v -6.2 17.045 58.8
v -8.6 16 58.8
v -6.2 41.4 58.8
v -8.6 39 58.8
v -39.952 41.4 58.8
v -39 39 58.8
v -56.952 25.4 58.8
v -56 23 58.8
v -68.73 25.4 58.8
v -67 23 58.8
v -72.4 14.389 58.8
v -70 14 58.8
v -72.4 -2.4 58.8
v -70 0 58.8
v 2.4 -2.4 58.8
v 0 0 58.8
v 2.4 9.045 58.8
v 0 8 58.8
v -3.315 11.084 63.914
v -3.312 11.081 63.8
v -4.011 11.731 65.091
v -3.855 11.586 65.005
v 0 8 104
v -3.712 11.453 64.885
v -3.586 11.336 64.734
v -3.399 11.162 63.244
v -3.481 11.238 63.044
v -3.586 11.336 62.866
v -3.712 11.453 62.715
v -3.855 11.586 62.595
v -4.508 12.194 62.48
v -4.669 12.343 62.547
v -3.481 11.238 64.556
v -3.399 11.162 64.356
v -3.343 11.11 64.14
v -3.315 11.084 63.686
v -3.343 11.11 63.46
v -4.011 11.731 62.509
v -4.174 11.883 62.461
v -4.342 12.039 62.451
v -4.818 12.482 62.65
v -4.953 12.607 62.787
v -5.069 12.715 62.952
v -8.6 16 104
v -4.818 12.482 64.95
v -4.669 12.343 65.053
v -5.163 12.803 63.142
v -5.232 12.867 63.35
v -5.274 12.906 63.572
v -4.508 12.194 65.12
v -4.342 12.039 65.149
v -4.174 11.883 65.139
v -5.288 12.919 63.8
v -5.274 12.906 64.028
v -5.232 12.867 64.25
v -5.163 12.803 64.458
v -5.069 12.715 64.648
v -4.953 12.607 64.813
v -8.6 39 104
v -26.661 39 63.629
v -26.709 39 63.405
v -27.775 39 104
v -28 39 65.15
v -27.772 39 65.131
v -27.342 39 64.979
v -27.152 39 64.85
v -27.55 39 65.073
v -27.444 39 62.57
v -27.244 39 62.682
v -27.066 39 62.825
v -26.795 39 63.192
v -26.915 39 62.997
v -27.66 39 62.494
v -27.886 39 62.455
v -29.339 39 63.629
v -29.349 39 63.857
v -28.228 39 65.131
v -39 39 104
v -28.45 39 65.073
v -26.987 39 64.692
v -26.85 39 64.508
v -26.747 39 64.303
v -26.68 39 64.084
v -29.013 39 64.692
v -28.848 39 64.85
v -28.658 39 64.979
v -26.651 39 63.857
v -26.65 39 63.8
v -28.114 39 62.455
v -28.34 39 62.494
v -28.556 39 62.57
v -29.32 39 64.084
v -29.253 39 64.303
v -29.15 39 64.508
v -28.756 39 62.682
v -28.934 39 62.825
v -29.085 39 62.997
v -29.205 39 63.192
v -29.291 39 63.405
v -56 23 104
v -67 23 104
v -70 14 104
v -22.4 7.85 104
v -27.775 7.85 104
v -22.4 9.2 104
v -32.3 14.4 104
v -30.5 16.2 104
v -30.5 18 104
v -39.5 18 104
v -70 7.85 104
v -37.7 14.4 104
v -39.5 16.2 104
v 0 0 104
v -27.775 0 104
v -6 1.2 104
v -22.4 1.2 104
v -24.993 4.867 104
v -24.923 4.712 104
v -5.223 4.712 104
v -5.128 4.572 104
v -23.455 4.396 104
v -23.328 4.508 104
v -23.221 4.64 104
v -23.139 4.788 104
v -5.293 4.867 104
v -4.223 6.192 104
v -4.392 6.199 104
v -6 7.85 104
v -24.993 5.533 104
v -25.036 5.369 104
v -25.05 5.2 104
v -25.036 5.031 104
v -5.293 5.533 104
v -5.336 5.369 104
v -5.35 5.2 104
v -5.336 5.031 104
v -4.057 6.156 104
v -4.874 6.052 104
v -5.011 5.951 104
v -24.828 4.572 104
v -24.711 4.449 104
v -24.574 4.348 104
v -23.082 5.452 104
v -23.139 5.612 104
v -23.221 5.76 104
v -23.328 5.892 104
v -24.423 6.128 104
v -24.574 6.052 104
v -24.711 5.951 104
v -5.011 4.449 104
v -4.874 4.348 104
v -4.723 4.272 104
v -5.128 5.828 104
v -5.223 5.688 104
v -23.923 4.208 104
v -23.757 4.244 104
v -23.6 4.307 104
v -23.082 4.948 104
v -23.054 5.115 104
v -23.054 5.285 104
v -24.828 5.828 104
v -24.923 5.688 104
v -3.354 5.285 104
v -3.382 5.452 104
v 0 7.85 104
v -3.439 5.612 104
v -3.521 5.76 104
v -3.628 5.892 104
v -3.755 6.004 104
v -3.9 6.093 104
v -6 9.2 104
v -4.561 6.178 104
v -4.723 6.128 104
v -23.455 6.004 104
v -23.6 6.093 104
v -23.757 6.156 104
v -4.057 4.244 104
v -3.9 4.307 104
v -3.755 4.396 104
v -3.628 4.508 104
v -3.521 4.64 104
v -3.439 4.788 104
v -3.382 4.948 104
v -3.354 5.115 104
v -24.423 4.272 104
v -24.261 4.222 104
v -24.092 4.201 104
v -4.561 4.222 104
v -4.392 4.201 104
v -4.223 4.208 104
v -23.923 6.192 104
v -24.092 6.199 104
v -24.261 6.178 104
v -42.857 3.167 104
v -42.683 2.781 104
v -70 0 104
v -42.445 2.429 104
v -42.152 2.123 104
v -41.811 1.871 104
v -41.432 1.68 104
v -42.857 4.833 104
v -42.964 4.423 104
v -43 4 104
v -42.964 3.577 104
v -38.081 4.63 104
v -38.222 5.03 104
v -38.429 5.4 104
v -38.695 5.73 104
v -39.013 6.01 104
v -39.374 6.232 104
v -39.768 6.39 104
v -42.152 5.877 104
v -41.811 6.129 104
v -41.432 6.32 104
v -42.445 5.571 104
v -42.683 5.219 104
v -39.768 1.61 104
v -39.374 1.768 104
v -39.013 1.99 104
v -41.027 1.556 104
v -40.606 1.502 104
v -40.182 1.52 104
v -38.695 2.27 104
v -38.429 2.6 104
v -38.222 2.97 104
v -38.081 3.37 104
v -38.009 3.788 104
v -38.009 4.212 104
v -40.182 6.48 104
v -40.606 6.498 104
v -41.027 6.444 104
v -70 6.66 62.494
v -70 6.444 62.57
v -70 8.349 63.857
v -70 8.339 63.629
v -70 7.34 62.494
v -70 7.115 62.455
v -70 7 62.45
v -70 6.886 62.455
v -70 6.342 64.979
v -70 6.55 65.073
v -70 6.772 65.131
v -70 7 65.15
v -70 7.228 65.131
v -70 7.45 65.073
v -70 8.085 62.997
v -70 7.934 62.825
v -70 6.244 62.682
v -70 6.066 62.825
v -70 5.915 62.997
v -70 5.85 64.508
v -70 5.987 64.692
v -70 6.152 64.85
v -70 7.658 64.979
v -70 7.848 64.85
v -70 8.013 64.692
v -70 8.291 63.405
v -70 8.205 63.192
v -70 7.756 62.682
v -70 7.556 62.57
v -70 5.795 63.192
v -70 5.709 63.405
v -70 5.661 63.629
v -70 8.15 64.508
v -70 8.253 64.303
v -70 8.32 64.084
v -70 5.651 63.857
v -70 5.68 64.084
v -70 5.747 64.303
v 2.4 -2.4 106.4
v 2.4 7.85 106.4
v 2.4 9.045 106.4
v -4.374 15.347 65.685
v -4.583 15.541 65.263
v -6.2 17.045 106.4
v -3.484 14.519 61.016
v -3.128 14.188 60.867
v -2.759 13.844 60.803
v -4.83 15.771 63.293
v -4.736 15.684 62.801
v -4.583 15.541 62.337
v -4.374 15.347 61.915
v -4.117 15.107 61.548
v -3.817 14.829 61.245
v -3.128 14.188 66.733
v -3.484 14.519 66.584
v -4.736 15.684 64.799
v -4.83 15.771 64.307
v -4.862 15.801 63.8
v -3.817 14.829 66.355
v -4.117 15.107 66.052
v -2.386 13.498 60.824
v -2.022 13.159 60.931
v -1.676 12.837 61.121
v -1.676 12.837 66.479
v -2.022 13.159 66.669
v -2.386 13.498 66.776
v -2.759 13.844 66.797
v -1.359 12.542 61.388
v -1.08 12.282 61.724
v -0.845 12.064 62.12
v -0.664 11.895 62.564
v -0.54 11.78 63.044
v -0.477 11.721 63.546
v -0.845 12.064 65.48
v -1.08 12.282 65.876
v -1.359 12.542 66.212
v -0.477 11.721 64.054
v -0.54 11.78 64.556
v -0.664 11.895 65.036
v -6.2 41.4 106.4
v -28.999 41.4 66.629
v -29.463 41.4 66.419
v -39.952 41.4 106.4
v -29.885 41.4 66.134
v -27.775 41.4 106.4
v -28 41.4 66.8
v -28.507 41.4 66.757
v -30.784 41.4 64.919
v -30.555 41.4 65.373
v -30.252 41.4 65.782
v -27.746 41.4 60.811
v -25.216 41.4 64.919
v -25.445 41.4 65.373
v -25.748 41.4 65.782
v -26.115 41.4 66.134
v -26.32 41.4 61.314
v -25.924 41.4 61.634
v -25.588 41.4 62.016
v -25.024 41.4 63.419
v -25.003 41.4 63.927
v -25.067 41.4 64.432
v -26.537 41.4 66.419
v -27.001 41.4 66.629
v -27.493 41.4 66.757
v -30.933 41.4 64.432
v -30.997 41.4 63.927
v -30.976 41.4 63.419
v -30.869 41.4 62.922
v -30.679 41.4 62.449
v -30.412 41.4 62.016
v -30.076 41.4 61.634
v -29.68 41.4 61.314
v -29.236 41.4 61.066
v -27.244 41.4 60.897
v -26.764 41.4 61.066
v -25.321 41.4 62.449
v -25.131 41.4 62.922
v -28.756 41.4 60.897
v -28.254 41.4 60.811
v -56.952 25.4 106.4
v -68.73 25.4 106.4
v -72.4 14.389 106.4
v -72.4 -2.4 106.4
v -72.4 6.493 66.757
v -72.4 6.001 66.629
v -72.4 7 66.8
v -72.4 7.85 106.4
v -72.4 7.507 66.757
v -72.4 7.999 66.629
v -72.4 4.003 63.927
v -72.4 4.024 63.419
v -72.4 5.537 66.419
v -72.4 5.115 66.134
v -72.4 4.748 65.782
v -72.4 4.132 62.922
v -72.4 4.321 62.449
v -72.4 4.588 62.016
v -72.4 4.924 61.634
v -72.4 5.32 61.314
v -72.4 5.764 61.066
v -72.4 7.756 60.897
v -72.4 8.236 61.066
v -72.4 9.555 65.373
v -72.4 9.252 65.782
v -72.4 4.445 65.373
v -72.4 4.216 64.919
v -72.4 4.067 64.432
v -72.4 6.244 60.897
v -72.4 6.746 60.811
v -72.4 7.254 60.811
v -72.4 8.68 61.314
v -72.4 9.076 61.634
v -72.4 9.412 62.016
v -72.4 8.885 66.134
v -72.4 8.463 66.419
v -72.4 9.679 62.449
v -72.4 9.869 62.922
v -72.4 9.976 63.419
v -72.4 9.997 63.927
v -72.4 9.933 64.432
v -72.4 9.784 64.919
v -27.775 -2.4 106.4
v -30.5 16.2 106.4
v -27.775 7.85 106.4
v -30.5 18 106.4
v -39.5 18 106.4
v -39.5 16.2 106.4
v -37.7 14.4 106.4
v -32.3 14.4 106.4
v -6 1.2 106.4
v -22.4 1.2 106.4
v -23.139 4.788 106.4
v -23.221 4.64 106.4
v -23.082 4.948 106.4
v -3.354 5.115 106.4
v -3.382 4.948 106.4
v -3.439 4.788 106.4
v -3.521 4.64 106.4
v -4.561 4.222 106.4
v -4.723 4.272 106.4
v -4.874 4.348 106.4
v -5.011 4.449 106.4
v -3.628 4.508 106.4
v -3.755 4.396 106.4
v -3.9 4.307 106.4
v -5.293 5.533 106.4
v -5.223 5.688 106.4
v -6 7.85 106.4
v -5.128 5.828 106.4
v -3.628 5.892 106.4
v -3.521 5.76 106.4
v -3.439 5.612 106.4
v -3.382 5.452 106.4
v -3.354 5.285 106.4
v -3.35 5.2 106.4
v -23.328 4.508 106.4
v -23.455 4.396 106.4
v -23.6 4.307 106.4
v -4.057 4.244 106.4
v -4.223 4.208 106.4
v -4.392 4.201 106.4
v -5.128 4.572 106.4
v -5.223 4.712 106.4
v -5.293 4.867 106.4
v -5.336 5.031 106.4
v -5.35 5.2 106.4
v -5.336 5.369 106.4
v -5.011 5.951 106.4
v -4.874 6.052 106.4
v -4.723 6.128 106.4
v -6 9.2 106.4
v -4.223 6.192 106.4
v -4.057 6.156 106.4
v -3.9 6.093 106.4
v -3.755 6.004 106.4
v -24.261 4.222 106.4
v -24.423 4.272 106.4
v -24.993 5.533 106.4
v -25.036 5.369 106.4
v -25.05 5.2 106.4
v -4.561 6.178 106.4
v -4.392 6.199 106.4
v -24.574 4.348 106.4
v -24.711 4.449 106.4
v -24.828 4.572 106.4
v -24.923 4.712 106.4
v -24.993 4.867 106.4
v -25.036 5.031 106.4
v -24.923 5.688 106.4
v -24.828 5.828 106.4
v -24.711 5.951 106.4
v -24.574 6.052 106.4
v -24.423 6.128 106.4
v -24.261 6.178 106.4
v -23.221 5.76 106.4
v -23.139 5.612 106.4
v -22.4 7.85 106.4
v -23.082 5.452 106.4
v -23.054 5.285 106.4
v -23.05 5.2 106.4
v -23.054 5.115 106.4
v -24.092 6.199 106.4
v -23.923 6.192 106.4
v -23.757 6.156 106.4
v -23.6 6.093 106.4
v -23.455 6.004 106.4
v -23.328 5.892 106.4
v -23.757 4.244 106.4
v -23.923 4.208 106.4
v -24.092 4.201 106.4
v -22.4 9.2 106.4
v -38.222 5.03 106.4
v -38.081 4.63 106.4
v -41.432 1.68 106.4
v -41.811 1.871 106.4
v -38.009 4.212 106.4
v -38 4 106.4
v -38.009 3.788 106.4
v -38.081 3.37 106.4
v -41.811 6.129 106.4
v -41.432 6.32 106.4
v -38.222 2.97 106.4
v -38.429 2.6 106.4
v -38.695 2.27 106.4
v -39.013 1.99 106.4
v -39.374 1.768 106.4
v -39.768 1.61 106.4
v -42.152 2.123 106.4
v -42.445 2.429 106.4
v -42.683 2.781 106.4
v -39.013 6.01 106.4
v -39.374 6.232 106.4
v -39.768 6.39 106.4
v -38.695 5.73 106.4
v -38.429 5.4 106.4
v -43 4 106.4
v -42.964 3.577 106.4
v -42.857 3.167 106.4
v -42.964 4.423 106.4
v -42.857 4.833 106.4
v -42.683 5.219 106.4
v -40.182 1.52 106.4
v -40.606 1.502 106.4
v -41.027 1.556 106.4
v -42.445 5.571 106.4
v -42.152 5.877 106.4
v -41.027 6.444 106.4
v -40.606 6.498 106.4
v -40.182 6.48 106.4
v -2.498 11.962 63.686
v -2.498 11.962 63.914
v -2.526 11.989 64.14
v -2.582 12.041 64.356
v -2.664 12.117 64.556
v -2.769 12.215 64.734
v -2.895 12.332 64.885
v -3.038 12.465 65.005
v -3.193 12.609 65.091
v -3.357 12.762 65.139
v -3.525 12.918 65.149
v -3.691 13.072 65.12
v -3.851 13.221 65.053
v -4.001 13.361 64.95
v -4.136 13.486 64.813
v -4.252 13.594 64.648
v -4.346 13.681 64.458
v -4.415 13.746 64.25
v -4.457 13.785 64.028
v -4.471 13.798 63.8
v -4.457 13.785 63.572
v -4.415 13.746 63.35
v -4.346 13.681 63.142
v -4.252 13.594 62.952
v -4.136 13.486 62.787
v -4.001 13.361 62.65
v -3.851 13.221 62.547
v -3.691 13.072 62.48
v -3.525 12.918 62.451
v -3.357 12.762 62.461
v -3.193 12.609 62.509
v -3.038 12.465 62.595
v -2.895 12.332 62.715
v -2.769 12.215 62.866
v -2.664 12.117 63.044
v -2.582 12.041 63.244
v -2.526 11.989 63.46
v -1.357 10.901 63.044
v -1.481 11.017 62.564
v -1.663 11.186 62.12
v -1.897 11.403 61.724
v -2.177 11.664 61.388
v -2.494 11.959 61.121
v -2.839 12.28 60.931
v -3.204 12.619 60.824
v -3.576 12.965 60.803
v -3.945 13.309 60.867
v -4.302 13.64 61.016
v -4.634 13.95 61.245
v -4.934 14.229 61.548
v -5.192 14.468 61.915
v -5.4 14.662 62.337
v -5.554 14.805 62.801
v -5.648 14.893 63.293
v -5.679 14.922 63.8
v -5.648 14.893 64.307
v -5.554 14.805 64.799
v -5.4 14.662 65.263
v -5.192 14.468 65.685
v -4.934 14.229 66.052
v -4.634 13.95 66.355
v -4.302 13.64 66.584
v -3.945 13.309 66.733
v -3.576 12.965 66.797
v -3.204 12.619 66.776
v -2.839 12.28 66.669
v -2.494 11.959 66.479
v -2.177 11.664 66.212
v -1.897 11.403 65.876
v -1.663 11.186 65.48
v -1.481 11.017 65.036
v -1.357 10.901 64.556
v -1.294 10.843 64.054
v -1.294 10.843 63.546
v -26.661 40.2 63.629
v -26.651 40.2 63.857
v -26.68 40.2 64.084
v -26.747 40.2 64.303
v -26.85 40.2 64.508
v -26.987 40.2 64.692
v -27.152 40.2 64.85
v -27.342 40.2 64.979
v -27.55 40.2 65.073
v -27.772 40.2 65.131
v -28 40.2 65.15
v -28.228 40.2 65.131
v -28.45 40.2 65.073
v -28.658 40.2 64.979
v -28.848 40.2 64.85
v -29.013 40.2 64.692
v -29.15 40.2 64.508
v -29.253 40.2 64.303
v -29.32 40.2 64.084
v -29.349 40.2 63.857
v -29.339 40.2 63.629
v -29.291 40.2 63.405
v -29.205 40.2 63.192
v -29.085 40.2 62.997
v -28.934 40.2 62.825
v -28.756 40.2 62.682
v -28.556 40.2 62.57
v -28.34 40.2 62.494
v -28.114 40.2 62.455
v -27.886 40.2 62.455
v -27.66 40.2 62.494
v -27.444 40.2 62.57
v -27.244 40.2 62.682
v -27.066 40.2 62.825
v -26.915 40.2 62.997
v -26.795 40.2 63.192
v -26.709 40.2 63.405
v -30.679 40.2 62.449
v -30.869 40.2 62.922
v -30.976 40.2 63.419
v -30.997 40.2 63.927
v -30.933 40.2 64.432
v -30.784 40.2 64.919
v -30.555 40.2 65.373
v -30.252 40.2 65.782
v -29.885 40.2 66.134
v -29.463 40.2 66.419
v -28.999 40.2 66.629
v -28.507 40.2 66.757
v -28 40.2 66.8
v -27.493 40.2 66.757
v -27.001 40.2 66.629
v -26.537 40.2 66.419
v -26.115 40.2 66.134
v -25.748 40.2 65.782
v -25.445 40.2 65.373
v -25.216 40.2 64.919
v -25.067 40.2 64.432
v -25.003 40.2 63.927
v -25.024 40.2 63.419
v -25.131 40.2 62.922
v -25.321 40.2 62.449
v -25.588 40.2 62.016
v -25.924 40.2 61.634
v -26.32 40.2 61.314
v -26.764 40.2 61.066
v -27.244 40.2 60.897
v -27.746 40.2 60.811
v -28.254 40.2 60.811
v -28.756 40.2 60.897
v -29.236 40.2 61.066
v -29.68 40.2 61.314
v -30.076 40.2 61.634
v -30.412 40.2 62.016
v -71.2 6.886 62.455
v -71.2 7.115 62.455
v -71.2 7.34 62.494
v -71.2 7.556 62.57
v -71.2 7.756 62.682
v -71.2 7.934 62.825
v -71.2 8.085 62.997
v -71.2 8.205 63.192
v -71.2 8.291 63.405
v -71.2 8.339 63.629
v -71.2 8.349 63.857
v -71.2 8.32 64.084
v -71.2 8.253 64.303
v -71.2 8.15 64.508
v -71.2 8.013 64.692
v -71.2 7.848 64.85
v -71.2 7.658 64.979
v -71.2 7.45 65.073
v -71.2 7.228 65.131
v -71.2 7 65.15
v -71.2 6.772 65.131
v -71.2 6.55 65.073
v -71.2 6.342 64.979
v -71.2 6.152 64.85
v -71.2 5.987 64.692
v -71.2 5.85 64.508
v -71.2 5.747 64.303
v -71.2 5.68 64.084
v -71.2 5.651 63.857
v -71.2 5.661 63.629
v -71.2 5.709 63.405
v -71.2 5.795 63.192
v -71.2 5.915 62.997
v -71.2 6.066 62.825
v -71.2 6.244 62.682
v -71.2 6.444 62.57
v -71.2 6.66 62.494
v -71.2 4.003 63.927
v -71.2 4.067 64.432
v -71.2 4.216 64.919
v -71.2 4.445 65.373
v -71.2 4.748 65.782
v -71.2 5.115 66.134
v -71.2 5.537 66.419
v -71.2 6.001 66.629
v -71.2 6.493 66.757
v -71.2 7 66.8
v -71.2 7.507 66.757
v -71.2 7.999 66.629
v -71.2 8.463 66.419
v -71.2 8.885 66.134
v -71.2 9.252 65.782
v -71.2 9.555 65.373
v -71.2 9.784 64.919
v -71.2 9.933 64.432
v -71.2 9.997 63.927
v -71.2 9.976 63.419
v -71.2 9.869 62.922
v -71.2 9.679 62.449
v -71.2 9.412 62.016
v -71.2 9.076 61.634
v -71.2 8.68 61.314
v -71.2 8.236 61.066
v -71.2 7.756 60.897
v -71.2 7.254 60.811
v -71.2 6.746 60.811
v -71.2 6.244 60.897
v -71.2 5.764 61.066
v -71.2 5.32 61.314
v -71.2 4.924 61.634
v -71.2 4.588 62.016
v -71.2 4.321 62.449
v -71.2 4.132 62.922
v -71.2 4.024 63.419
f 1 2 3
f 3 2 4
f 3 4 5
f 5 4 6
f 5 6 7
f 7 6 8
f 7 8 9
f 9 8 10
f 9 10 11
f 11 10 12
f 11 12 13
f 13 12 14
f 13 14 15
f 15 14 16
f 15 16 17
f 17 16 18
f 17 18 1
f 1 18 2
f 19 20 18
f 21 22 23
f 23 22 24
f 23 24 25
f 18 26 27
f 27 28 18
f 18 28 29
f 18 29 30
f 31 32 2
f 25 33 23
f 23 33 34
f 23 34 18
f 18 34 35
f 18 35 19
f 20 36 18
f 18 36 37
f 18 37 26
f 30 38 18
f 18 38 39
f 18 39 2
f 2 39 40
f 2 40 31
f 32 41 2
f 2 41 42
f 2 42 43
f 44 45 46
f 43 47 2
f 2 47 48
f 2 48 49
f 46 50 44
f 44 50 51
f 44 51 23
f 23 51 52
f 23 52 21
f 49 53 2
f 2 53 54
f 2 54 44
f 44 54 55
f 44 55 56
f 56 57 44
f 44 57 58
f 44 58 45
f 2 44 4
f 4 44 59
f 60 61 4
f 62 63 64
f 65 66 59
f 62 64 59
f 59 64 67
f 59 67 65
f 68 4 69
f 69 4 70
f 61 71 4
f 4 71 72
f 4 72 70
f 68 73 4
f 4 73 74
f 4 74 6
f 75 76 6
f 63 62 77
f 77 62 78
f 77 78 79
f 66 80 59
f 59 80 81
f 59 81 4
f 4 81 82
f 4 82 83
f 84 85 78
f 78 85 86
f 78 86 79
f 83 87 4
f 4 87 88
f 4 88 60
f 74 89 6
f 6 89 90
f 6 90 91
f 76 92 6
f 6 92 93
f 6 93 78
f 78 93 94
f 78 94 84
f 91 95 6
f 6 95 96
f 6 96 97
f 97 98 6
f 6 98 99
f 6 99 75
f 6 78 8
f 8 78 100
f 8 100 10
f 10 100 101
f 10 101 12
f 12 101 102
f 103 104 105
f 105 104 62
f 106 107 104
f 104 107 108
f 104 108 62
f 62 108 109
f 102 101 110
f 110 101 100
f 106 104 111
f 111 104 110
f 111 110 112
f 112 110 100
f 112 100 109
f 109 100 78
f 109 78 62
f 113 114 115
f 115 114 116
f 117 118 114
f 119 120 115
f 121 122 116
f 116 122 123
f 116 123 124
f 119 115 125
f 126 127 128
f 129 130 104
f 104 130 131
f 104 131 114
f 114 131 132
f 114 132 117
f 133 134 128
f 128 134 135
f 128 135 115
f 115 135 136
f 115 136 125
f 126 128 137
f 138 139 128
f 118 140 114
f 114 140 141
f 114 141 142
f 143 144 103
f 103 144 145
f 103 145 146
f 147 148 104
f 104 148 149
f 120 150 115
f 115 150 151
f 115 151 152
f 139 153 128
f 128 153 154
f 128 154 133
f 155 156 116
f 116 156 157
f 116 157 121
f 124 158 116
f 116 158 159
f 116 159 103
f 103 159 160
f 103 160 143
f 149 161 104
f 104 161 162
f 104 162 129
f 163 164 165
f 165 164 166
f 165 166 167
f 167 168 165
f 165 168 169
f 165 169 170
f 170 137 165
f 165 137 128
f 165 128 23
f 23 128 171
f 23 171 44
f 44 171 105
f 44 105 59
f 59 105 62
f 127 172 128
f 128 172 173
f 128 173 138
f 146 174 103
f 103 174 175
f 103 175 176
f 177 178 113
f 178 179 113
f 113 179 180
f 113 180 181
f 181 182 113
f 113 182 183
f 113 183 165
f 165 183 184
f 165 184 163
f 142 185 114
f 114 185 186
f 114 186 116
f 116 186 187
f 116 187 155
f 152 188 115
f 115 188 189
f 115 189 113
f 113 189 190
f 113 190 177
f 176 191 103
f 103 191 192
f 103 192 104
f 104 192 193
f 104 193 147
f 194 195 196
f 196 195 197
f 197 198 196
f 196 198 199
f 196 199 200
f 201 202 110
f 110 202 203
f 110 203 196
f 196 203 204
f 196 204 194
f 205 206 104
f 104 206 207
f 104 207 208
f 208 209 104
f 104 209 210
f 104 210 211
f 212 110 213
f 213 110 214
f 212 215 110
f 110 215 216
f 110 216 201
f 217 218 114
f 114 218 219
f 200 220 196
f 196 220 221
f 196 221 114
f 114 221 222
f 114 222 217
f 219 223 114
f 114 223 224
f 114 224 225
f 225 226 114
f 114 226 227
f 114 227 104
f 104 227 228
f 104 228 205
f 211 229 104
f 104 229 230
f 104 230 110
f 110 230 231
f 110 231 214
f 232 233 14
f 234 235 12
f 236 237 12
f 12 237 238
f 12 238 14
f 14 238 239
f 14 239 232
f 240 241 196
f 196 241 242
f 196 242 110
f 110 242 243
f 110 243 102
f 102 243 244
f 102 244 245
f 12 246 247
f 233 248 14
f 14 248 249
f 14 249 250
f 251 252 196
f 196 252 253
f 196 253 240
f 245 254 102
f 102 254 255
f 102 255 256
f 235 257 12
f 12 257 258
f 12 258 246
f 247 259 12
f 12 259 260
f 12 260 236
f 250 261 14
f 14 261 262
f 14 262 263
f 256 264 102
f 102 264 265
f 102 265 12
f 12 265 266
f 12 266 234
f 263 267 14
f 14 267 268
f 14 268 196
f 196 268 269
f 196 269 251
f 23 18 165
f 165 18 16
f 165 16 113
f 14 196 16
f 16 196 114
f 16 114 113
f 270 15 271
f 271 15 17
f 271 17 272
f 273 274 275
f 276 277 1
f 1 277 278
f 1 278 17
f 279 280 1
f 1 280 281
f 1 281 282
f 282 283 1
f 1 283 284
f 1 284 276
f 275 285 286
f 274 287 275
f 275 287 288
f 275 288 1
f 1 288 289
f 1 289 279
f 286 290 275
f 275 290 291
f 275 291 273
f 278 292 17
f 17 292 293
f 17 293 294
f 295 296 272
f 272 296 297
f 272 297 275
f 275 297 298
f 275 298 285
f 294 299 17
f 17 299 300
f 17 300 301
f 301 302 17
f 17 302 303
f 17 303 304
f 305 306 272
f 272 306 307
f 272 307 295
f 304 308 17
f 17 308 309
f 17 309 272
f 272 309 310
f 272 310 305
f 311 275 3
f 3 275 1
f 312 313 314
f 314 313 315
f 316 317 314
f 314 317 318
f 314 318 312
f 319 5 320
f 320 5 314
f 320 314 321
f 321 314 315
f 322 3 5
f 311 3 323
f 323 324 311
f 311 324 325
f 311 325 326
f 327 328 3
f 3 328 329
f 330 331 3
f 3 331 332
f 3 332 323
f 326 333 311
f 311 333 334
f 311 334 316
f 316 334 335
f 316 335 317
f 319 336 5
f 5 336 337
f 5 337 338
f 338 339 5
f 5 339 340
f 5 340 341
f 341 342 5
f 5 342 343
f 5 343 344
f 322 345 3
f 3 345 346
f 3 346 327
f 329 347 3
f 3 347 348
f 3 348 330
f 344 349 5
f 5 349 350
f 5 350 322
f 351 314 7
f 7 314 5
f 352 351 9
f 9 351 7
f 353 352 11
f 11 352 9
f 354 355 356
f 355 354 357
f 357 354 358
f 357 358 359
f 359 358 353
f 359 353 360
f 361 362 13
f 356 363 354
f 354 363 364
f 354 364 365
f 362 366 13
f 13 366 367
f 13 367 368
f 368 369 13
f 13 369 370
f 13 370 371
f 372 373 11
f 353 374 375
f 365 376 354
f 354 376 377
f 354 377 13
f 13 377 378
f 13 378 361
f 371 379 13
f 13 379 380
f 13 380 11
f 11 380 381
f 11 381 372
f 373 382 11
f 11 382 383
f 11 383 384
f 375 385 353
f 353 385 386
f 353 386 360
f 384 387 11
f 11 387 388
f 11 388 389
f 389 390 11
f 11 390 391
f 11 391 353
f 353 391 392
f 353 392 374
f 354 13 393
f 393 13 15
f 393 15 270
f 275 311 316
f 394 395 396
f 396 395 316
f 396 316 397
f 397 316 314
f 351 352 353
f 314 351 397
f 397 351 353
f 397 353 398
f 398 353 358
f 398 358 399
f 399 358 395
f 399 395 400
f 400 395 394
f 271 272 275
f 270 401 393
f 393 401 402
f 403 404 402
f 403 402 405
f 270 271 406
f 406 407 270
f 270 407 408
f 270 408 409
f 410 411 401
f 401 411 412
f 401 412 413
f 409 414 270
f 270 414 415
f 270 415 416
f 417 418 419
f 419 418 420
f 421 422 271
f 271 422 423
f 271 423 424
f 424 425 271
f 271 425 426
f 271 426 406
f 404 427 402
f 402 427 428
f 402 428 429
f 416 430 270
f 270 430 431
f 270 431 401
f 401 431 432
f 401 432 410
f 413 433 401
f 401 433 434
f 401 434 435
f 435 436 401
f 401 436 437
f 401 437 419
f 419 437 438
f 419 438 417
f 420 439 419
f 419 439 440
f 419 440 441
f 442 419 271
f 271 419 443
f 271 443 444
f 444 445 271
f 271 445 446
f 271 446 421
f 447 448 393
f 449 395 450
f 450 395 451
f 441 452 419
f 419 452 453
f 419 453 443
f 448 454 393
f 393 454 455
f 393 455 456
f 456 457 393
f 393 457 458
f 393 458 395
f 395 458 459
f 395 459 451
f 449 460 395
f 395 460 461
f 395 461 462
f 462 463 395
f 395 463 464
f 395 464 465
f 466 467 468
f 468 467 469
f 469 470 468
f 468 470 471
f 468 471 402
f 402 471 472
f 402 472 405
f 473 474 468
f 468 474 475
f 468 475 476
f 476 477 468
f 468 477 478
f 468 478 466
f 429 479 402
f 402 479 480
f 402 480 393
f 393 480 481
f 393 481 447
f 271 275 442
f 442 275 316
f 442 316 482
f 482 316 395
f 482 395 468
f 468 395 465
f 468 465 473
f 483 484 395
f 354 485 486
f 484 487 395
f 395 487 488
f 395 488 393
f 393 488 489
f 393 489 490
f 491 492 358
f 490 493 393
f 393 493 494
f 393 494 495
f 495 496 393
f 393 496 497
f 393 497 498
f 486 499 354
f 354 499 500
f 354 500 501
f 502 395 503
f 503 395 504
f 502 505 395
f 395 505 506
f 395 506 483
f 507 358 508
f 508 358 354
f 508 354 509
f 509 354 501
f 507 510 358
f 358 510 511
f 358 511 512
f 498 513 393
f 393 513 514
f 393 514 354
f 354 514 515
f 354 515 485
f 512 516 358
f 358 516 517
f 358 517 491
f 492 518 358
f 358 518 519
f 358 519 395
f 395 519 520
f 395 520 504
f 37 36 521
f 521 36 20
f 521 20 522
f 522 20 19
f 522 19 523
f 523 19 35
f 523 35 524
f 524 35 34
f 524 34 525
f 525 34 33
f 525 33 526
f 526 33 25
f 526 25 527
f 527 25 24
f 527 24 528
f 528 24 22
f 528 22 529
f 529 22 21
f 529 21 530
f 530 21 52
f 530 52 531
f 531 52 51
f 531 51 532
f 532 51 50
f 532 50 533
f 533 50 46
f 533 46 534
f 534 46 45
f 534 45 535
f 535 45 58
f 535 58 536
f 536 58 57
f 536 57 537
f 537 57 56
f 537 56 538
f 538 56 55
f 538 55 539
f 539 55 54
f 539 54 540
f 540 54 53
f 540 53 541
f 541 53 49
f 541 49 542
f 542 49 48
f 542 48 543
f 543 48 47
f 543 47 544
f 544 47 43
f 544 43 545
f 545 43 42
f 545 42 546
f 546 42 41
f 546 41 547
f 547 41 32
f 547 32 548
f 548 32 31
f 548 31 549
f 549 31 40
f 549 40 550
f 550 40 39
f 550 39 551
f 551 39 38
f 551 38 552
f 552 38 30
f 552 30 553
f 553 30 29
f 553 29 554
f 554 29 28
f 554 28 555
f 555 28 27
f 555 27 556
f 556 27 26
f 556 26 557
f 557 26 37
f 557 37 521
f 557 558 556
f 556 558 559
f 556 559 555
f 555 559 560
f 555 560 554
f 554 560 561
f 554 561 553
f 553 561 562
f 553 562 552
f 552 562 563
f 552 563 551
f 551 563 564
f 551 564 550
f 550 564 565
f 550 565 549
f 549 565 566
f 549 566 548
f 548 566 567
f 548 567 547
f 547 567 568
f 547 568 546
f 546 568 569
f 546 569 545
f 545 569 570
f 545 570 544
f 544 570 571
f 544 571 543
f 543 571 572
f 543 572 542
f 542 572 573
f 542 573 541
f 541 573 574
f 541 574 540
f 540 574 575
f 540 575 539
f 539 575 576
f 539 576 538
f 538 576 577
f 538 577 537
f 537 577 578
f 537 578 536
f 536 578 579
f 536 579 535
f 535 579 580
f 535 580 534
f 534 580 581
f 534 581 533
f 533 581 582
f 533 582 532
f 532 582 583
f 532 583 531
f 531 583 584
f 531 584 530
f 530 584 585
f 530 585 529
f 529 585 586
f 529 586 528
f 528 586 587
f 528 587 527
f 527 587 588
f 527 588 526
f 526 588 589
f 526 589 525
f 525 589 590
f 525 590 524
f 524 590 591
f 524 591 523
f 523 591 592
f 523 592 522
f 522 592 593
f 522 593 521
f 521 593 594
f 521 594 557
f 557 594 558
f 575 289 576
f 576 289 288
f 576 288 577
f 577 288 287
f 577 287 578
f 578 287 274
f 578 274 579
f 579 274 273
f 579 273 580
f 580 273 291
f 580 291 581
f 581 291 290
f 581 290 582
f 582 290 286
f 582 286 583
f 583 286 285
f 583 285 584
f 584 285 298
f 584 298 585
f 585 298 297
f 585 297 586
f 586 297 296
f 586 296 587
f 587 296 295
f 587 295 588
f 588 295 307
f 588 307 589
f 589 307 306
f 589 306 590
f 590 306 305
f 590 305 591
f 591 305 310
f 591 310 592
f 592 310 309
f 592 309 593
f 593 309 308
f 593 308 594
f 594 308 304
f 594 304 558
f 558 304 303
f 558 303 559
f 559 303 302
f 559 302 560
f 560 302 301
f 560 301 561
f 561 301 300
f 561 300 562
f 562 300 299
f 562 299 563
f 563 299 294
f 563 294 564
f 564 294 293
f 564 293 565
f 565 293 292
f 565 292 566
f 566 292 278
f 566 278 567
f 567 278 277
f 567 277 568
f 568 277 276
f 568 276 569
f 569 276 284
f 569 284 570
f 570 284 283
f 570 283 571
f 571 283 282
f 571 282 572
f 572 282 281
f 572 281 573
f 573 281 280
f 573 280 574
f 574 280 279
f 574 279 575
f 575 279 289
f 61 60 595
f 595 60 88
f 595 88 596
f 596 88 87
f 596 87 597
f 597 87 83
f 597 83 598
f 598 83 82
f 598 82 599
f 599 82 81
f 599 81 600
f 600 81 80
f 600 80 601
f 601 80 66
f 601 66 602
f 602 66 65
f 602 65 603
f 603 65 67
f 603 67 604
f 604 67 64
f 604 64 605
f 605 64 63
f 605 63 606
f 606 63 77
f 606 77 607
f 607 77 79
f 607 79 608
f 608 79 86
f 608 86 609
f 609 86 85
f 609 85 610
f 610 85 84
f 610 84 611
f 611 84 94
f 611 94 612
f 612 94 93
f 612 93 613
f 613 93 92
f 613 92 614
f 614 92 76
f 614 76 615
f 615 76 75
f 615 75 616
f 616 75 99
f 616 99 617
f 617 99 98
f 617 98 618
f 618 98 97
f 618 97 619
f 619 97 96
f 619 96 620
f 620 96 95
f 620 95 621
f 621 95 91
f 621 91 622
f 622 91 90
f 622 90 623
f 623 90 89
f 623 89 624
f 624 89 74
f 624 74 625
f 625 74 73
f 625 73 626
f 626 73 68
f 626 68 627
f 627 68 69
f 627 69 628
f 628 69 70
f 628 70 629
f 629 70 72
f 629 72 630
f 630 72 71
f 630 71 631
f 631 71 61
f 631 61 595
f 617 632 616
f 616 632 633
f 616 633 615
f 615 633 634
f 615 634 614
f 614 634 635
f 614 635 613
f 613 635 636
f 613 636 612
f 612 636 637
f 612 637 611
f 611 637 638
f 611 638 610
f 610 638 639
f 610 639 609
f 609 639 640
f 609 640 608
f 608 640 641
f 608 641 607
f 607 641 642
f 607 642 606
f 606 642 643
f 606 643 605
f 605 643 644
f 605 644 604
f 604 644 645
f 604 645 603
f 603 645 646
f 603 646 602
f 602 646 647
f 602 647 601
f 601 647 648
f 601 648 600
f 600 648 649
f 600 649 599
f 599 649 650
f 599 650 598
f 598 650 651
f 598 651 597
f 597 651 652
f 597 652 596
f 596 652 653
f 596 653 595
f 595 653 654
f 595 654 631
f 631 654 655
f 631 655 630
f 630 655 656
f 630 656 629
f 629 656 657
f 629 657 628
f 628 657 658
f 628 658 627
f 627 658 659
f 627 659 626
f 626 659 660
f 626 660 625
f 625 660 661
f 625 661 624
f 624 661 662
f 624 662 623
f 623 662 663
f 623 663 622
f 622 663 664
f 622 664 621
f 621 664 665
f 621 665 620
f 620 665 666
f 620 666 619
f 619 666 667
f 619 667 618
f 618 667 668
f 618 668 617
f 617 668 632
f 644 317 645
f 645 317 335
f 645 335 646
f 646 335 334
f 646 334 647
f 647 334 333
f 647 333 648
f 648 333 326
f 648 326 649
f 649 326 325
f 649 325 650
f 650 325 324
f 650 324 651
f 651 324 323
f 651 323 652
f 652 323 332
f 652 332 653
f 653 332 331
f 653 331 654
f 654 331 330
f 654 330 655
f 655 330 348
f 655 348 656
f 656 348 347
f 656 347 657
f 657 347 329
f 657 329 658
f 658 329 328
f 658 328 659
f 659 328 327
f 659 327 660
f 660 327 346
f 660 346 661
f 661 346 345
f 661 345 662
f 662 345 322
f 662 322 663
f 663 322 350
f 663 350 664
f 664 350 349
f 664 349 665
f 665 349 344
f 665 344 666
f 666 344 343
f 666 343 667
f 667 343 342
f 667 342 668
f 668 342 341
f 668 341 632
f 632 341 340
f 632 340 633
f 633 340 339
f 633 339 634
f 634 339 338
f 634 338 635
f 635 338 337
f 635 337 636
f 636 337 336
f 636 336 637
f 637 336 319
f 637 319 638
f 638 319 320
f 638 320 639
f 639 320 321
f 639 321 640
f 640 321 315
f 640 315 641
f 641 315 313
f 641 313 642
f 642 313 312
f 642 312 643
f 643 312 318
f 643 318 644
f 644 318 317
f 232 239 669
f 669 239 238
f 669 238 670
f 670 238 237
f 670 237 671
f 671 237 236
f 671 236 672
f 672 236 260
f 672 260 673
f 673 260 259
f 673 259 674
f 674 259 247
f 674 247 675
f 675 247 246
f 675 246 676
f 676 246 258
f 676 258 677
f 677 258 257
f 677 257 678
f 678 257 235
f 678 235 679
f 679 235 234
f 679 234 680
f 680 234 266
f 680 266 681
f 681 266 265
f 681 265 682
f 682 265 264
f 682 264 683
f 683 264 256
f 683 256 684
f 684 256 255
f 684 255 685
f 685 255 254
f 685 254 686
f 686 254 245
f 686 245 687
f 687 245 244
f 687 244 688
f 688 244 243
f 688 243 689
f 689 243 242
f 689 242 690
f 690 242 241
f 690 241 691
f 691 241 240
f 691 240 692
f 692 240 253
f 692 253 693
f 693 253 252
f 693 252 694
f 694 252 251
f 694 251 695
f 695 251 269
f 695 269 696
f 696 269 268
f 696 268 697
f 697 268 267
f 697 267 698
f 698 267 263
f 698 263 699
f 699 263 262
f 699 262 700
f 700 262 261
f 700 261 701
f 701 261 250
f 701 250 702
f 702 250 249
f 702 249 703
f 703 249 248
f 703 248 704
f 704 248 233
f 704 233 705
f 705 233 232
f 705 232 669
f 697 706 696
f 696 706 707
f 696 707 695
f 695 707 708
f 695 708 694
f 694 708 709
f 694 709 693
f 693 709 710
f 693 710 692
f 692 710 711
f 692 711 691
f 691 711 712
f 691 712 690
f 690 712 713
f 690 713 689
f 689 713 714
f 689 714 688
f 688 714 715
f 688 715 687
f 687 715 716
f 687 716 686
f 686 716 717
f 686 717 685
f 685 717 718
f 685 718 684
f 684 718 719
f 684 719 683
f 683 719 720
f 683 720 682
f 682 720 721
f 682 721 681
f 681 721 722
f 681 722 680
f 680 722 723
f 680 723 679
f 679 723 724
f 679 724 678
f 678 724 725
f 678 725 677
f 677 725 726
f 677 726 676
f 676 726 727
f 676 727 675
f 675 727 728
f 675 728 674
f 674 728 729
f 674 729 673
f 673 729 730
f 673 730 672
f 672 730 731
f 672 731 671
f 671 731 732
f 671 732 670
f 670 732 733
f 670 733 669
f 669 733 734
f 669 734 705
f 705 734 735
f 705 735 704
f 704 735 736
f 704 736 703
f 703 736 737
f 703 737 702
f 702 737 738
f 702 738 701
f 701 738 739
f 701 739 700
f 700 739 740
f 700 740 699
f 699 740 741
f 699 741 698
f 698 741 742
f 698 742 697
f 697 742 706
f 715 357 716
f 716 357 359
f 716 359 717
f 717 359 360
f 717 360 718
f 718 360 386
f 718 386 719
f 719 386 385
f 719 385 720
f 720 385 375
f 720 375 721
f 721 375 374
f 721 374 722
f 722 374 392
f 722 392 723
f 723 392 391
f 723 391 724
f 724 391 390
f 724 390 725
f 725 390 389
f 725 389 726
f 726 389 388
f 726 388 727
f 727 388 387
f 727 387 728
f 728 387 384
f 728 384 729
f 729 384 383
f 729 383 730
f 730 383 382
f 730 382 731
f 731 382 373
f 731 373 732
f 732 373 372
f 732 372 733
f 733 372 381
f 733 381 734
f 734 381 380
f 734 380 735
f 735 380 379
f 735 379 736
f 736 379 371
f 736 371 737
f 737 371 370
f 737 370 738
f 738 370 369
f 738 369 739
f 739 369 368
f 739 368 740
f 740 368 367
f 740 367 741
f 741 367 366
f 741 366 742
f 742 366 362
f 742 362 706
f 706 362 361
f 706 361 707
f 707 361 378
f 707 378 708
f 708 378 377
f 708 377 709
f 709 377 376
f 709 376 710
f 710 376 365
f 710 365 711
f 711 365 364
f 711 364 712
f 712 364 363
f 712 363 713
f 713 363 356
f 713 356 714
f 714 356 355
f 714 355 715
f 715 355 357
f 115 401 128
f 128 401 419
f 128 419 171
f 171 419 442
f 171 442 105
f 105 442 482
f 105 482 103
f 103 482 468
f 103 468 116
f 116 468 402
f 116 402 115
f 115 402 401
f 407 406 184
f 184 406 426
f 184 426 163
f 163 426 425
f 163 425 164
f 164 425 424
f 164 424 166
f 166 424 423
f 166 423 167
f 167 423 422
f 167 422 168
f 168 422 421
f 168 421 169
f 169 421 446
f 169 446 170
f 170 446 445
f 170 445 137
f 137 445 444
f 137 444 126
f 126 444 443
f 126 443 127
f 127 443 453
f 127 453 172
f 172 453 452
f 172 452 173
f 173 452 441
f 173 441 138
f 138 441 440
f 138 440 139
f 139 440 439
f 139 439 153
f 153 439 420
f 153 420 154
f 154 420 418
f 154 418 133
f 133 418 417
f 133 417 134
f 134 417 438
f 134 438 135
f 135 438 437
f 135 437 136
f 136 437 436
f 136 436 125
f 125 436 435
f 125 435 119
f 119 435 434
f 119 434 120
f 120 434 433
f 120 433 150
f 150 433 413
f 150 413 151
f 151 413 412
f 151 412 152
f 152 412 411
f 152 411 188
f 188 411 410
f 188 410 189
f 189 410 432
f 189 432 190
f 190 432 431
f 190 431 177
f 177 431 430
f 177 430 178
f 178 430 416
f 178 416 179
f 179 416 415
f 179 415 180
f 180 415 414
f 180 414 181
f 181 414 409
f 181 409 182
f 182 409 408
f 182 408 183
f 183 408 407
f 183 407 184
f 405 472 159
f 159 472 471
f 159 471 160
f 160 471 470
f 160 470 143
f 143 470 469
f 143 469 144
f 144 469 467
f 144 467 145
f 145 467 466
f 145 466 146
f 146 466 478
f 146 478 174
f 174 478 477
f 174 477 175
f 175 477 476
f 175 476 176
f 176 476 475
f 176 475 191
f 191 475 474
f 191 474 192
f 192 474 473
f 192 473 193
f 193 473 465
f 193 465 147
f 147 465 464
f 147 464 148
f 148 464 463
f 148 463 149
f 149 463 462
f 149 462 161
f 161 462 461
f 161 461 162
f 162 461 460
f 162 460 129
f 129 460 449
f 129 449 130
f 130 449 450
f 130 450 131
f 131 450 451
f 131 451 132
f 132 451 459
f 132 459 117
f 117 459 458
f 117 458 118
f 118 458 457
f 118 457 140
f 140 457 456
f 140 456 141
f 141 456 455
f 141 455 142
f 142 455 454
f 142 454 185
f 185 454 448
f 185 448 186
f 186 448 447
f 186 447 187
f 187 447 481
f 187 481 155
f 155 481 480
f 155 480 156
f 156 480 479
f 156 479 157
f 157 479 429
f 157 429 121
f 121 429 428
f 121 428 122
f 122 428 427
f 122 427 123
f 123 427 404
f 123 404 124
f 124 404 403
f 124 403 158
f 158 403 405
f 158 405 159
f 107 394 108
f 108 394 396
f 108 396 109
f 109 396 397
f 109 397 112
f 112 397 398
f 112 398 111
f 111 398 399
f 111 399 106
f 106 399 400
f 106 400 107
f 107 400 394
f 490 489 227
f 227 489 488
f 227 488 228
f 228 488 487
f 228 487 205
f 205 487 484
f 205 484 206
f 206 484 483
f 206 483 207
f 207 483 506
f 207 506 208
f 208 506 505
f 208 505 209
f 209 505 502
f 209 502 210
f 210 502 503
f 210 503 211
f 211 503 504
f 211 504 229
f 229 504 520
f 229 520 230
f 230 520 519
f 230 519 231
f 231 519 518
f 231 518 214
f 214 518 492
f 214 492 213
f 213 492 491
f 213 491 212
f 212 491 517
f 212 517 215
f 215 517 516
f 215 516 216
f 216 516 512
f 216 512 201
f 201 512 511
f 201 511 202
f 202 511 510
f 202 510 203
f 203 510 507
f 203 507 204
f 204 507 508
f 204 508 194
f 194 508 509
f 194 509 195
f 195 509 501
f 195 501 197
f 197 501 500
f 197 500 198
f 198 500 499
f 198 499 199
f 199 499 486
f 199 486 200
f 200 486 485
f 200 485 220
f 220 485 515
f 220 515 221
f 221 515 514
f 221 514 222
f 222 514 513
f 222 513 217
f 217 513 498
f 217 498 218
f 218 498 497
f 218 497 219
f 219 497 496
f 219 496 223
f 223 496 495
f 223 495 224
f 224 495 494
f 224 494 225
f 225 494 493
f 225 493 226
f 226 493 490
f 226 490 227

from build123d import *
from OCP.BRepFilletAPI import BRepFilletAPI_MakeChamfer

# Parameters (mm, degrees)
BOSS_EXTRUDE1_DEPTH                            = 104
SHELL1_START                                   = -8.6
SHELL1_OUTLINE_W                               = 16
SHELL1_OUTLINE_H                               = 108.8
SHELL1_DEPTH                                   = 2.4
SHELL1_START_2                                 = -56.951785259
SHELL1_2_OUTLINE_W                             = 43.8
SHELL1_2_OUTLINE_H                             = 108.8
SHELL1_2_DEPTH                                 = 50.751785259
SHELL1_START_3                                 = -72.4
SHELL1_3_OUTLINE_W                             = 27.8
SHELL1_3_OUTLINE_H                             = 108.8
SHELL1_3_DEPTH                                 = 74.8
SHELL1_4_DEPTH                                 = 104
SHELL1_START_4                                 = -2.4
SHELL1_5_DEPTH                                 = 108.8
SPLIT1_SURFACE_1_BACK                          = 140.108
SPLIT1_SURFACE_1_DEPTH                         = 280.216
SPLIT1_SURFACE_2_BACK                          = 140.108
SPLIT1_SURFACE_2_DEPTH                         = 280.216
BOSS_EXTRUDE2_DEPTH                            = 4
BOSS_EXTRUDE3_DEPTH                            = 4
BOSS_EXTRUDE4_DEPTH                            = 4
CHAMFER1_SIZE                                  = 4
CHAMFER1_SIZE_2                                = 6.92820323
CBORE_START                                    = 7.057493905
CBORE_FOR_M2_5_PAN_HEAD_MACHINE_SCREW1_O_R     = 3
CBORE_FOR_M2_5_PAN_HEAD_MACHINE_SCREW1_DEPTH   = 1.2
CBORE_START_2                                  = 5.857493905
CBORE_FOR_M2_5_PAN_HEAD_MACHINE_SCRE_2_R       = 1.35
CBORE_FOR_M2_5_PAN_HEAD_MACHINE_SCREW1_2_DEPTH = 1.2
CBORE_START_3                                  = 40.2
CBORE_FOR_M2_5_PAN_HEAD_MACHINE_SCRE_3_R       = 3
CBORE_FOR_M2_5_PAN_HEAD_MACHINE_SCREW1_3_DEPTH = 1.2
CBORE_START_4                                  = 38
CBORE_FOR_M2_5_PAN_HEAD_MACHINE_SCRE_4_R       = 1.35
CBORE_FOR_M2_5_PAN_HEAD_MACHINE_SCREW1_4_DEPTH = 2.2
CBORE_START_5                                  = -72.4
CBORE_FOR_M2_5_PAN_HEAD_MACHINE_SCRE_5_R       = 3
CBORE_FOR_M2_5_PAN_HEAD_MACHINE_SCREW1_5_DEPTH = 1.2
CBORE_START_6                                  = -71.2
CBORE_FOR_M2_5_PAN_HEAD_MACHINE_SCRE_6_R       = 1.35
CBORE_FOR_M2_5_PAN_HEAD_MACHINE_SCREW1_6_DEPTH = 1.2
CUT_EXTRUDE2_REACH                             = 96.862
SKETCH12_R                                     = 1
SKETCH12_R_2                                   = 2.5
SKETCH12_W                                     = 16.4
SKETCH12_H                                     = 8


with BuildPart() as part:
    # Sketch1 → Boss-Extrude1 (new body)
    with BuildSketch(Plane.XY):
        Polygon((-39, 39), (-56, 23), (-67, 23), (-70, 14.000026796), (-70, 0), (0, 0), (0, 8), (-8.6, 16), (-8.6, 39), align=None)
    extrude(amount=BOSS_EXTRUDE1_DEPTH)

    # Shell1: read off the stored shape, not the designer's step
    # Shell1 outline → Shell1 (add)
    with BuildSketch(Plane.YZ.offset(SHELL1_START)):
        with Locations((33.4, 52)):
            Rectangle(SHELL1_OUTLINE_W, SHELL1_OUTLINE_H)
    extrude(amount=SHELL1_DEPTH)

    # Shell1 2 outline → Shell1 2 (add)
    with BuildSketch(Plane.YZ.offset(SHELL1_START_2)):
        with Locations((19.5, 52)):
            Rectangle(SHELL1_2_OUTLINE_W, SHELL1_2_OUTLINE_H)
    extrude(amount=SHELL1_2_DEPTH)

    # Shell1 3 outline → Shell1 3 (add)
    with BuildSketch(Plane.YZ.offset(SHELL1_START_3)):
        with Locations((11.5, 52)):
            Rectangle(SHELL1_3_OUTLINE_W, SHELL1_3_OUTLINE_H)
    extrude(amount=SHELL1_3_DEPTH)

    # Shell1 4 outline → Shell1 4 (cut)
    with BuildSketch(Plane.XY):
        Polygon((-6.2, 25.4), (-6.2, 17.045294183), (2.4, 9.045294183), (2.4, 25.4), align=None)
        Polygon((-72.4, 14.389494281), (-68.729820499, 25.4), (-72.4, 25.4), align=None)
        Polygon((-56.951785259, 25.4), (-39.951785259, 41.4), (-56.951785259, 41.4), align=None)
        Polygon((0, 0), (0, 8), (-8.6, 16), (-8.6, 39), (-39, 39), (-56, 23), (-67, 23), (-70, 14.000026796), (-70, 0), align=None)
    extrude(amount=SHELL1_4_DEPTH, mode=Mode.SUBTRACT)

    # Shell1 5 outline → Shell1 5 (cut)
    with BuildSketch(Plane.XY.offset(SHELL1_START_4)):
        Polygon((-6.2, 25.4), (-6.2, 17.045294183), (2.4, 9.045294183), (2.4, 25.4), align=None)
        Polygon((-72.4, 14.389494281), (-68.729820499, 25.4), (-72.4, 25.4), align=None)
        Polygon((-56.951785259, 25.4), (-39.951785259, 41.4), (-56.951785259, 41.4), align=None)
    extrude(amount=SHELL1_5_DEPTH, mode=Mode.SUBTRACT)


with BuildPart() as body_2:
    # Split1: the piece behind the surface
    add(part.part)
    # Split1 surface: a surface, the sketch's curves swept straight by 280.216 mm
    with BuildLine(Plane(origin=(0, 0, 0), x_dir=(0, 0, -1), z_dir=(1, 0, 0)).offset(-SPLIT1_SURFACE_1_BACK), mode=Mode.PRIVATE) as split1_surface_1_path:
        Line((-58.8, -2.4), (-58.8, 41.4))
    split1_surface_1 = Shell.extrude(split1_surface_1_path.wire(), (1 * SPLIT1_SURFACE_1_DEPTH, 0 * SPLIT1_SURFACE_1_DEPTH, 0 * SPLIT1_SURFACE_1_DEPTH))
    split(bisect_by=split1_surface_1, keep=Keep.BOTTOM)

    # Sketch3 → Boss-Extrude2 (add)
    with BuildSketch(Plane(origin=(3.989562192, 4.288779356, 0), x_dir=(0.7321867381630838, -0.6811039424772873, 0), z_dir=(-0.6811039424772873, -0.7321867381630838, 0))):
        with BuildLine():
            Line((-14.321650284, 51.3), (-8.321650284, 51.3))
            Line((-8.321650284, 51.3), (-8.321650284, 63.8))
            ThreePointArc((-8.321650284, 63.8), (-11.321650284, 66.8), (-14.321650284, 63.8))
            Line((-14.321650284, 63.8), (-14.321650284, 51.3))
        make_face()
    extrude(amount=BOSS_EXTRUDE2_DEPTH)

    # Sketch4 → Boss-Extrude3 (add)
    with BuildSketch(Plane.XZ.offset(-39)):
        with BuildLine():
            Line((-31, 51.3), (-25, 51.3))
            Line((-25, 51.3), (-25, 63.8))
            ThreePointArc((-25, 63.8), (-28, 66.8), (-31, 63.8))
            Line((-31, 63.8), (-31, 51.3))
        make_face()
    extrude(amount=BOSS_EXTRUDE3_DEPTH)

    # Sketch5 → Boss-Extrude4 (add)
    with BuildSketch(Plane(origin=(-70, 0, 0), x_dir=(0, 0, -1), z_dir=(1, 0, 0))):
        with BuildLine():
            Line((-51.3, 10.000013398), (-63.8, 10.000013398))
            ThreePointArc((-63.8, 10.000013398), (-66.8, 7.000013398), (-63.8, 4.000013398))
            Line((-63.8, 4.000013398), (-51.3, 4.000013398))
            Line((-51.3, 4.000013398), (-51.3, 10.000013398))
        make_face()
    extrude(amount=BOSS_EXTRUDE4_DEPTH)

    # Chamfer1
    chamfer1_edges_1 = [body_2.edges().sort_by_distance(p)[0] for p in [
        (-7.02441577, 9.071253047, 51.3),
    ]]
    chamfer1_side_1 = [body_2.faces().sort_by_distance(p)[0] for p in [
        (-6.969927455, 9.129827986, 51.3),
    ]]
    chamfer1_edges_2 = [body_2.edges().sort_by_distance(p)[0] for p in [
        (-28, 35, 51.3),
    ]]
    chamfer1_side_2 = [body_2.faces().sort_by_distance(p)[0] for p in [
        (-28, 35.08, 51.3),
    ]]
    chamfer1_edges_3 = [body_2.edges().sort_by_distance(p)[0] for p in [
        (-66, 7.000013398, 51.3),
    ]]
    chamfer1_side_3 = [body_2.faces().sort_by_distance(p)[0] for p in [
        (-66.08, 7.000013398, 51.3),
    ]]
    chamfer1 = BRepFilletAPI_MakeChamfer(body_2.part.solid().wrapped)
    for e in chamfer1_edges_1:
        chamfer1.Add(CHAMFER1_SIZE - 0.0001, CHAMFER1_SIZE_2 - 0.0001, e.wrapped, chamfer1_side_1[0].wrapped)
    for e in chamfer1_edges_2:
        chamfer1.Add(CHAMFER1_SIZE - 0.0001, CHAMFER1_SIZE_2 - 0.0001, e.wrapped, chamfer1_side_2[0].wrapped)
    for e in chamfer1_edges_3:
        chamfer1.Add(CHAMFER1_SIZE - 0.0001, CHAMFER1_SIZE_2 - 0.0001, e.wrapped, chamfer1_side_3[0].wrapped)
    add(Compound.cast(chamfer1.Shape()), mode=Mode.REPLACE)  # a hair under: the kernel refuses the full size

    # CBORE for M2.5 Pan Head Machine Screw1 7: loft between two sections, ruled curve by curve
    cbore_for_m2_5_pan_head_machine_screw1_7_from = [
        Edge.make_three_point_arc((-8.012867866, 9.99074337, 63.8), (-7.02441577, 9.071253047, 65.15), (-6.035963673, 8.151762725, 63.8)),
        Edge.make_three_point_arc((-6.035963673, 8.151762725, 63.8), (-7.02441577, 9.071253047, 62.45), (-8.012867866, 9.99074337, 63.8)),
    ]
    cbore_for_m2_5_pan_head_machine_screw1_7_to = [
        Edge.make_three_point_arc((-5.288452097, 12.919490322, 63.8), (-4.3, 12, 65.15), (-3.311547903, 11.080509678, 63.8)),
        Edge.make_three_point_arc((-3.311547903, 11.080509678, 63.8), (-4.3, 12, 62.45), (-5.288452097, 12.919490322, 63.8)),
    ]
    cbore_for_m2_5_pan_head_machine_screw1_7 = Solid(Shell([*[Face.make_surface_from_curves(cbore_for_m2_5_pan_head_machine_screw1_7_from[k], cbore_for_m2_5_pan_head_machine_screw1_7_to[k]) for k in range(2)], Face(Wire(cbore_for_m2_5_pan_head_machine_screw1_7_from)), Face(Wire(cbore_for_m2_5_pan_head_machine_screw1_7_to))]))
    add(cbore_for_m2_5_pan_head_machine_screw1_7, mode=Mode.SUBTRACT)

    # CBORE for M2.5 Pan Head Machine Screw1 8: loft between two sections, ruled curve by curve
    cbore_for_m2_5_pan_head_machine_screw1_8_from = [
        Edge.make_three_point_arc((-29.35, 35, 63.8), (-28, 35, 65.15), (-26.65, 35, 63.8)),
        Edge.make_three_point_arc((-26.65, 35, 63.8), (-28, 35, 62.45), (-29.35, 35, 63.8)),
    ]
    cbore_for_m2_5_pan_head_machine_screw1_8_to = [
        Edge.make_three_point_arc((-29.35, 39, 63.8), (-28, 39, 65.15), (-26.65, 39, 63.8)),
        Edge.make_three_point_arc((-26.65, 39, 63.8), (-28, 39, 62.45), (-29.35, 39, 63.8)),
    ]
    cbore_for_m2_5_pan_head_machine_screw1_8 = Solid(Shell([*[Face.make_surface_from_curves(cbore_for_m2_5_pan_head_machine_screw1_8_from[k], cbore_for_m2_5_pan_head_machine_screw1_8_to[k]) for k in range(2)], Face(Wire(cbore_for_m2_5_pan_head_machine_screw1_8_from)), Face(Wire(cbore_for_m2_5_pan_head_machine_screw1_8_to))]))
    add(cbore_for_m2_5_pan_head_machine_screw1_8, mode=Mode.SUBTRACT)

    # CBORE for M2.5 Pan Head Machine Screw1 9: loft between two sections, ruled curve by curve
    cbore_for_m2_5_pan_head_machine_screw1_9_from = [
        Edge.make_three_point_arc((-66, 7.000013398, 65.15), (-66, 8.350013398, 63.8), (-66, 7.000013398, 62.45)),
        Edge.make_three_point_arc((-66, 7.000013398, 62.45), (-66, 5.650013398, 63.8), (-66, 7.000013398, 65.15)),
    ]
    cbore_for_m2_5_pan_head_machine_screw1_9_to = [
        Edge.make_three_point_arc((-70, 7.000013398, 65.15), (-70, 8.350013398, 63.8), (-70, 7.000013398, 62.45)),
        Edge.make_three_point_arc((-70, 7.000013398, 62.45), (-70, 5.650013398, 63.8), (-70, 7.000013398, 65.15)),
    ]
    cbore_for_m2_5_pan_head_machine_screw1_9 = Solid(Shell([*[Face.make_surface_from_curves(cbore_for_m2_5_pan_head_machine_screw1_9_from[k], cbore_for_m2_5_pan_head_machine_screw1_9_to[k]) for k in range(2)], Face(Wire(cbore_for_m2_5_pan_head_machine_screw1_9_from)), Face(Wire(cbore_for_m2_5_pan_head_machine_screw1_9_to))]))
    add(cbore_for_m2_5_pan_head_machine_screw1_9, mode=Mode.SUBTRACT)


with BuildPart() as part_1:
    add(part.part)

    # Split1: split by a surface, the side it looks to stays
    # Split1 surface: a surface, the sketch's curves swept straight by 280.216 mm
    with BuildLine(Plane(origin=(0, 0, 0), x_dir=(0, 0, -1), z_dir=(1, 0, 0)).offset(-SPLIT1_SURFACE_2_BACK), mode=Mode.PRIVATE) as split1_surface_2_path:
        Line((-58.8, -2.4), (-58.8, 41.4))
    split1_surface_2 = Shell.extrude(split1_surface_2_path.wire(), (1 * SPLIT1_SURFACE_2_DEPTH, 0 * SPLIT1_SURFACE_2_DEPTH, 0 * SPLIT1_SURFACE_2_DEPTH))
    split(bisect_by=split1_surface_2, keep=Keep.TOP)

    # CBORE for M2.5 Pan Head Machine Screw1: read off the stored shape, not the designer's step
    # CBORE for M2.5 Pan Head Machine Screw1 o → CBORE for M2.5 Pan Head Machine Screw1 (cut)
    with BuildSketch(Plane(origin=(0, 0, 0), x_dir=(0.732186738163084, -0.681103942477287, 0), z_dir=(0.681103942477287, 0.732186738163084, 0)).offset(CBORE_START)):
        with Locations((-11.321650284, -63.8)):
            Circle(CBORE_FOR_M2_5_PAN_HEAD_MACHINE_SCREW1_O_R)
    extrude(amount=CBORE_FOR_M2_5_PAN_HEAD_MACHINE_SCREW1_DEPTH, mode=Mode.SUBTRACT)

    # CBORE for M2.5 Pan Head Machine Scre 2 → CBORE for M2.5 Pan Head Machine Screw1 2 (cut)
    with BuildSketch(Plane(origin=(0, 0, 0), x_dir=(0.732186738163084, -0.681103942477287, 0), z_dir=(0.681103942477287, 0.732186738163084, 0)).offset(CBORE_START_2)):
        with Locations((-11.321650284, -63.8)):
            Circle(CBORE_FOR_M2_5_PAN_HEAD_MACHINE_SCRE_2_R)
    extrude(amount=CBORE_FOR_M2_5_PAN_HEAD_MACHINE_SCREW1_2_DEPTH, mode=Mode.SUBTRACT)

    # CBORE for M2.5 Pan Head Machine Scre 3 → CBORE for M2.5 Pan Head Machine Screw1 3 (cut)
    with BuildSketch(Plane(origin=(0, 0, 0), x_dir=(1, 0, 0), z_dir=(0, 1, 0)).offset(CBORE_START_3)):
        with Locations((-28, -63.8)):
            Circle(CBORE_FOR_M2_5_PAN_HEAD_MACHINE_SCRE_3_R)
    extrude(amount=CBORE_FOR_M2_5_PAN_HEAD_MACHINE_SCREW1_3_DEPTH, mode=Mode.SUBTRACT)

    # CBORE for M2.5 Pan Head Machine Scre 4 → CBORE for M2.5 Pan Head Machine Screw1 4 (cut)
    with BuildSketch(Plane(origin=(0, 0, 0), x_dir=(1, 0, 0), z_dir=(0, 1, 0)).offset(CBORE_START_4)):
        with Locations((-28, -63.8)):
            Circle(CBORE_FOR_M2_5_PAN_HEAD_MACHINE_SCRE_4_R)
    extrude(amount=CBORE_FOR_M2_5_PAN_HEAD_MACHINE_SCREW1_4_DEPTH, mode=Mode.SUBTRACT)

    # CBORE for M2.5 Pan Head Machine Scre 5 → CBORE for M2.5 Pan Head Machine Screw1 5 (cut)
    with BuildSketch(Plane.YZ.offset(CBORE_START_5)):
        with Locations((7.000013398, 63.8)):
            Circle(CBORE_FOR_M2_5_PAN_HEAD_MACHINE_SCRE_5_R)
    extrude(amount=CBORE_FOR_M2_5_PAN_HEAD_MACHINE_SCREW1_5_DEPTH, mode=Mode.SUBTRACT)

    # CBORE for M2.5 Pan Head Machine Scre 6 → CBORE for M2.5 Pan Head Machine Screw1 6 (cut)
    with BuildSketch(Plane.YZ.offset(CBORE_START_6)):
        with Locations((7.000013398, 63.8)):
            Circle(CBORE_FOR_M2_5_PAN_HEAD_MACHINE_SCRE_6_R)
    extrude(amount=CBORE_FOR_M2_5_PAN_HEAD_MACHINE_SCREW1_6_DEPTH, mode=Mode.SUBTRACT)

    # Sketch12 → Cut-Extrude2 (cut, up to next)
    with BuildSketch(Plane(origin=(0, 0, 104), x_dir=(-1, 0, 0), z_dir=(0, 0, -1)), mode=Mode.PRIVATE) as cut_extrude2_sk1:
        with Locations((4.35, 5.2)):
            Circle(SKETCH12_R)
    cut_extrude2_tool1 = extrude(cut_extrude2_sk1.sketch, amount=-CUT_EXTRUDE2_REACH, mode=Mode.PRIVATE) & part_1.part
    # Sketch12 → Cut-Extrude2 (cut, up to next)
    with BuildSketch(Plane(origin=(0, 0, 104), x_dir=(-1, 0, 0), z_dir=(0, 0, -1)), mode=Mode.PRIVATE) as cut_extrude2_sk2:
        with Locations((24.05, 5.2)):
            Circle(SKETCH12_R)
    cut_extrude2_tool2 = extrude(cut_extrude2_sk2.sketch, amount=-CUT_EXTRUDE2_REACH, mode=Mode.PRIVATE) & part_1.part
    # Sketch12 → Cut-Extrude2 (cut, up to next)
    with BuildSketch(Plane(origin=(0, 0, 104), x_dir=(-1, 0, 0), z_dir=(0, 0, -1)), mode=Mode.PRIVATE) as cut_extrude2_sk3:
        with Locations((40.5, 4)):
            Circle(SKETCH12_R_2)
    cut_extrude2_tool3 = extrude(cut_extrude2_sk3.sketch, amount=-CUT_EXTRUDE2_REACH, mode=Mode.PRIVATE) & part_1.part
    # Sketch12 → Cut-Extrude2 (cut, up to next)
    with BuildSketch(Plane(origin=(0, 0, 104), x_dir=(-1, 0, 0), z_dir=(0, 0, -1)), mode=Mode.PRIVATE) as cut_extrude2_sk4:
        with Locations((14.2, 5.2)):
            Rectangle(SKETCH12_W, SKETCH12_H)
    cut_extrude2_tool4 = extrude(cut_extrude2_sk4.sketch, amount=-CUT_EXTRUDE2_REACH, mode=Mode.PRIVATE) & part_1.part
    # Sketch12 → Cut-Extrude2 (cut, up to next)
    with BuildSketch(Plane(origin=(0, 0, 104), x_dir=(-1, 0, 0), z_dir=(0, 0, -1)), mode=Mode.PRIVATE) as cut_extrude2_sk5:
        Polygon((30.5, 16.2), (32.3, 14.4), (37.7, 14.4), (39.5, 16.2), (39.5, 18), (30.5, 18), align=None)
    cut_extrude2_tool5 = extrude(cut_extrude2_sk5.sketch, amount=-CUT_EXTRUDE2_REACH, mode=Mode.PRIVATE) & part_1.part
    add(cut_extrude2_tool1.solids().sort_by_distance((-4.35, 5.2, 104))[0], mode=Mode.SUBTRACT)
    add(cut_extrude2_tool2.solids().sort_by_distance((-24.05, 5.2, 104))[0], mode=Mode.SUBTRACT)
    add(cut_extrude2_tool3.solids().sort_by_distance((-40.5, 4, 104))[0], mode=Mode.SUBTRACT)
    add(cut_extrude2_tool4.solids().sort_by_distance((-14.2, 5.2, 104))[0], mode=Mode.SUBTRACT)
    add(cut_extrude2_tool5.solids().sort_by_distance((-35, 16.333333, 104))[0], mode=Mode.SUBTRACT)


solid = part_1.part
